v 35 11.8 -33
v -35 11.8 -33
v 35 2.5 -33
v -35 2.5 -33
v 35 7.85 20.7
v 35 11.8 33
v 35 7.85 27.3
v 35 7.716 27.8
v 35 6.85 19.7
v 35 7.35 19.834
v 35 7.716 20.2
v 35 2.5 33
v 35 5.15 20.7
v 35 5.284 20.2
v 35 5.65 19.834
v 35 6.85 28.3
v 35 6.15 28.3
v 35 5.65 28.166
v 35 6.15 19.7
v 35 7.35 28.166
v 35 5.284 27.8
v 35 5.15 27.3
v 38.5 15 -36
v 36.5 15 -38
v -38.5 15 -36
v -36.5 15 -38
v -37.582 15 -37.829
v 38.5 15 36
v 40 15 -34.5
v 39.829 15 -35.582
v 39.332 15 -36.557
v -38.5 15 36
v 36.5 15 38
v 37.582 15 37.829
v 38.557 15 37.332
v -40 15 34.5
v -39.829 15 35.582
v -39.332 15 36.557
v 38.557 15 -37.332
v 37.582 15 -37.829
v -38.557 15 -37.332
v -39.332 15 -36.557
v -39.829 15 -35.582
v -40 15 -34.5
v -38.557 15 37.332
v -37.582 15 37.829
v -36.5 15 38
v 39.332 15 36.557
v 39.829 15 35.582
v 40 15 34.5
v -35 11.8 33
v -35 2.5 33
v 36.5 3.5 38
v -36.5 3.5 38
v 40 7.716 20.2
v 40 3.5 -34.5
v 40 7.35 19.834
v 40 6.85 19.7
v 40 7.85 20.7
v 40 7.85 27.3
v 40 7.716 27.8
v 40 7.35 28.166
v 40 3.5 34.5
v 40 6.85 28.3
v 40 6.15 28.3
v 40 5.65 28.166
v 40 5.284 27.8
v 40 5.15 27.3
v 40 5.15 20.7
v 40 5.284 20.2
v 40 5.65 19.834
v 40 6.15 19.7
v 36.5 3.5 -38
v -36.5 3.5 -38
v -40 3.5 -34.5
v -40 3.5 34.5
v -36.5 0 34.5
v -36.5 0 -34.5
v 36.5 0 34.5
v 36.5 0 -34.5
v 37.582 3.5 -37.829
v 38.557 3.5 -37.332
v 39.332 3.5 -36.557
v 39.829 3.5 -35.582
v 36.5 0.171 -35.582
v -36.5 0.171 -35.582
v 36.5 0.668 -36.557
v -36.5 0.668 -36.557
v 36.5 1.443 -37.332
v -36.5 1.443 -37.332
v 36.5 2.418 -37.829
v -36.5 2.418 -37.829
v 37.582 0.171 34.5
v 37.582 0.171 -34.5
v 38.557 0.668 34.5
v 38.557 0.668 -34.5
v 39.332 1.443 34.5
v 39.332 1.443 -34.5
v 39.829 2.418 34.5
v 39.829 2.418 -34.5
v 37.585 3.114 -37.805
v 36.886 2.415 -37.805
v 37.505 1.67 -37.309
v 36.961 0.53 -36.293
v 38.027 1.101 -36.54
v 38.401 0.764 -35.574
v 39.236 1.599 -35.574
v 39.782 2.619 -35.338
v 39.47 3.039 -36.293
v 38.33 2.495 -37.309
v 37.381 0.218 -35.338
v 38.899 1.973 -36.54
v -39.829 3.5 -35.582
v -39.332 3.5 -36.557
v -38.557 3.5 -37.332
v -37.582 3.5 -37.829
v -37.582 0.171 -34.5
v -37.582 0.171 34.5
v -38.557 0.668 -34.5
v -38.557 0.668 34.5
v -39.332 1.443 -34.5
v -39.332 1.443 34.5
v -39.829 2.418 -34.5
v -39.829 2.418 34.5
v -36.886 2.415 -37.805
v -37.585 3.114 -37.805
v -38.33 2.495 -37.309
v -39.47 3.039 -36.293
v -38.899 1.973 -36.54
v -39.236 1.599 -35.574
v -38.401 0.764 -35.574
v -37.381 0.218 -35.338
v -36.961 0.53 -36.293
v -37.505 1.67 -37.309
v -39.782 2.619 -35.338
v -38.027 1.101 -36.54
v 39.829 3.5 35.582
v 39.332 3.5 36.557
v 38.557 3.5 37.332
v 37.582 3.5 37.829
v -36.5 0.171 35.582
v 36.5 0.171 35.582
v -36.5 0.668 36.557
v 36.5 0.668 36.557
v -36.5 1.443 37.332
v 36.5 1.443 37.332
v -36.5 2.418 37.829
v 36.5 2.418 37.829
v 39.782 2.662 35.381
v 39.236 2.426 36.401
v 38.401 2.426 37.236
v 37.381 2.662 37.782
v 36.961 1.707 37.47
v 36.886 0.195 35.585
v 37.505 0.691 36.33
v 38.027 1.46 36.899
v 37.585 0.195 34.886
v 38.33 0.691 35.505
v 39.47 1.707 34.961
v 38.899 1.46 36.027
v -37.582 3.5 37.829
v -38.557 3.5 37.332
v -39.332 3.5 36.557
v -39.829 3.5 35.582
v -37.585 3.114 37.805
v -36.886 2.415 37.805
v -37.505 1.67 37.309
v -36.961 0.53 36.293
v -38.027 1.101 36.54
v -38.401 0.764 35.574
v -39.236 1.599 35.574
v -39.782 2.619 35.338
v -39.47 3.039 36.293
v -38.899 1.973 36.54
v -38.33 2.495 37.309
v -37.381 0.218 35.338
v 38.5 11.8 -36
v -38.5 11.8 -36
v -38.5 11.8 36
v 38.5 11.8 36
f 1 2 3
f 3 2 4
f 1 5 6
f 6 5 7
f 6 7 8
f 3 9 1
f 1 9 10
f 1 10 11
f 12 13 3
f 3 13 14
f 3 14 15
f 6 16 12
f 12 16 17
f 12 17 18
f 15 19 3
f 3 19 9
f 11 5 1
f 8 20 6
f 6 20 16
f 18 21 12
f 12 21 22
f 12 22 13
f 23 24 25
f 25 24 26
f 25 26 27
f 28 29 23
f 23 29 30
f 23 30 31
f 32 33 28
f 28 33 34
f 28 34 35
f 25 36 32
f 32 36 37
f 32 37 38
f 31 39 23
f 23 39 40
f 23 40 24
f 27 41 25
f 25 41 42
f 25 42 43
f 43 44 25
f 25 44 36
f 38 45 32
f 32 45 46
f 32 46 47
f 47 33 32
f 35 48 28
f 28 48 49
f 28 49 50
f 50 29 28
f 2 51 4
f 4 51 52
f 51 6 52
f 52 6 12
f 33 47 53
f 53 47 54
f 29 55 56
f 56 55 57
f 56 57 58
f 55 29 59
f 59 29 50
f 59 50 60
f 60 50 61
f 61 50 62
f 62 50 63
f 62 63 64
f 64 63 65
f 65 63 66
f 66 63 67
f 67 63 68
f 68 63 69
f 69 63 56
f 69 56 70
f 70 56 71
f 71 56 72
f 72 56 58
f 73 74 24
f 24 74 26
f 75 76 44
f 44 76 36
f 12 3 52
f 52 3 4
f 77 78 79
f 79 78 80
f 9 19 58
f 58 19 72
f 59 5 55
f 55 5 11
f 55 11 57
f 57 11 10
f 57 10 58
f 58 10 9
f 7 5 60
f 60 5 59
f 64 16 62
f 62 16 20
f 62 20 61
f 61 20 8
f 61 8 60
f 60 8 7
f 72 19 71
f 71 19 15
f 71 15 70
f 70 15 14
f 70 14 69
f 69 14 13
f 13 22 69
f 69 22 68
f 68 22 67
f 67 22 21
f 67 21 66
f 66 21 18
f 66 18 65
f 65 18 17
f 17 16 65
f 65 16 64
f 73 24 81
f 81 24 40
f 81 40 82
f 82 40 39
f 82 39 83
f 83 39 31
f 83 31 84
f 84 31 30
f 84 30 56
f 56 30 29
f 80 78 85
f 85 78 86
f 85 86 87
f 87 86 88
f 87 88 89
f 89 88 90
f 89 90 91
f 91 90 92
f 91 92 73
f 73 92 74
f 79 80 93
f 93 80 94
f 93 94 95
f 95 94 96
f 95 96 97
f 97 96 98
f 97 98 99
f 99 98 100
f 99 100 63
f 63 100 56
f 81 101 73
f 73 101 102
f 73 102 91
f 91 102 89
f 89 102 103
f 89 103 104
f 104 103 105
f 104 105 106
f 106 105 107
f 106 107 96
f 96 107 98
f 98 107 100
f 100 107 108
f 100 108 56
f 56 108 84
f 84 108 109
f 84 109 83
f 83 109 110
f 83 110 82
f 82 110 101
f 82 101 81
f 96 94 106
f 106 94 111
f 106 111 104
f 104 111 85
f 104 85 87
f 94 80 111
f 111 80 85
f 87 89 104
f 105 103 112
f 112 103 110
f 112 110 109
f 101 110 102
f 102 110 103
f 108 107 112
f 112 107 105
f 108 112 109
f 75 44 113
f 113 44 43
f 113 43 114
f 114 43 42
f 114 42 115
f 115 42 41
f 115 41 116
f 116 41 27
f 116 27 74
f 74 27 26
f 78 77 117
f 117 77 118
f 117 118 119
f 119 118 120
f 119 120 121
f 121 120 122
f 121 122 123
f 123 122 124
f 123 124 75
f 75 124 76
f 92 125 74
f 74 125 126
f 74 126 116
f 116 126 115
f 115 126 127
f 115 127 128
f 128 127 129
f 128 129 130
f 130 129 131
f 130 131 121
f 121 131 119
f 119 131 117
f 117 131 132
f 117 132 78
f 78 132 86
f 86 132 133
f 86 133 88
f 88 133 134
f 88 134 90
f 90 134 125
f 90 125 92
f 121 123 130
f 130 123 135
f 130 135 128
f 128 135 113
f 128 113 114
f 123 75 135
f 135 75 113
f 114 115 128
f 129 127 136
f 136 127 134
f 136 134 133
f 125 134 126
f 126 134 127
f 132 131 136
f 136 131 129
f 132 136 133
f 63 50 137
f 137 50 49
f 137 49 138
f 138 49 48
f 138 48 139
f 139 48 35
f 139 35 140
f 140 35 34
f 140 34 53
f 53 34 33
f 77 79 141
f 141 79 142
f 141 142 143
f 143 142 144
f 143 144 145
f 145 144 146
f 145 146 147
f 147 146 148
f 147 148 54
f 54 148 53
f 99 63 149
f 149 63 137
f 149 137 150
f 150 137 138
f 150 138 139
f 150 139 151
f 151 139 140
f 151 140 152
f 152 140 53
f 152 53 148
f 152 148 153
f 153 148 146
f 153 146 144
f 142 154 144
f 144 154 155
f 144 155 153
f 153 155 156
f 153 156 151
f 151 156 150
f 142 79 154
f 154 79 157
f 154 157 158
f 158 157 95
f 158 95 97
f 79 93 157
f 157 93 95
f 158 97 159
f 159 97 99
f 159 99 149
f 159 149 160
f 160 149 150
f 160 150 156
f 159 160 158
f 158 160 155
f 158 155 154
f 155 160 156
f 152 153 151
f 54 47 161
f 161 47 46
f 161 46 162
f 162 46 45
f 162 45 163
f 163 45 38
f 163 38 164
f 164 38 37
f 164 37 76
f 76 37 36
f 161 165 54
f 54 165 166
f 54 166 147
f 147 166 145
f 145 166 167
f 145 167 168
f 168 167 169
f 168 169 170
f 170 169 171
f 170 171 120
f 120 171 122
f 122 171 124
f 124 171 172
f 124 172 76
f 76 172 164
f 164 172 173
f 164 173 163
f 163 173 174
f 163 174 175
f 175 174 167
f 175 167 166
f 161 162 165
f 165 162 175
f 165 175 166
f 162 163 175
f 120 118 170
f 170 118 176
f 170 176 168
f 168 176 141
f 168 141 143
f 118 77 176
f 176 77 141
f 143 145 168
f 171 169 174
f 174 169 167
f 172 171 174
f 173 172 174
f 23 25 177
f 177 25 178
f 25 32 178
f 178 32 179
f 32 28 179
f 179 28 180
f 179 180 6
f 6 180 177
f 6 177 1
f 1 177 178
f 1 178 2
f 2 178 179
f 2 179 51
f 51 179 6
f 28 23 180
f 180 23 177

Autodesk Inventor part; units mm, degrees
ref_plane "YZ Plane" through (0, 0, 0) normal (1, 0, 0) x (0, 1, 0)
ref_plane "XZ Plane" through (0, 0, 0) normal (0, 1, 0) x (-1, 0, 0)
ref_plane "XY Plane" through (0, 0, 0) normal (0, 0, 1) x (1, 0, 0)
sketch "Sketch2" plane through (0, 0, 0) normal (0, 1, 0) x (-1, 0, 0)
  line L0 (-40, -38) -> (40, -38)
  line L1 (40, -38) -> (40, 38)
  line L2 (40, 38) -> (-40, 38)
  line L3 (-40, 38) -> (-40, -38)
  line L4 (-40, -38) -> (40, 38) construction
  line L5 (40, -38) -> (-40, 38) construction
  point P0 (0, 0)
  dimension "d0" = 80
  dimension "d1" = 76
extrude "Extrusion1" add sketch "Sketch2" along normal blind 2.5
sketch "Sketch3" plane through (0, 2.5, 0) normal (0, 1, 0) x (1, 0, 0)
  line L0 (-35, -33) -> (35, -33)
  line L1 (35, -33) -> (35, 33)
  line L2 (35, 33) -> (-35, 33)
  line L3 (-35, 33) -> (-35, -33)
  line L4 (-35, -33) -> (35, 33) construction
  line L5 (35, -33) -> (-35, 33) construction
  line L6 (-40, 38) -> (-40, -38) projected
  line L7 (-40, 38) -> (-40, -38) projected
  line L8 (-40, -38) -> (40, -38) projected
  line L9 (-40, -38) -> (40, -38) projected
  line L10 (40, -38) -> (40, 38) projected
  line L11 (40, -38) -> (40, 38) projected
  line L12 (40, 38) -> (-40, 38) projected
  line L13 (40, 38) -> (-40, 38) projected
  point P0 (0, 0)
  dimension "d4" = 70
  dimension "d5" = 66
extrude "Extrusion2" add sketch "Sketch3" along normal blind 12.5
sketch "Sketch4" plane through (40, 0, 38) normal (1, 0, 0) x (0, 0, -1)
  line L0 (76, 0) -> (0, 0) projected
  line L1 (0, 0) -> (0, 15) projected
  line L2 (76, 0) -> (76, 15) projected
  line L3 (71, 2.5) -> (71, 15) projected
  line L4 (76, 15) -> (0, 15) projected
  line L5 (71, 2.5) -> (5, 2.5) projected
  line L6 (5, 2.5) -> (5, 15) projected
  line L7 (5, 15) -> (71, 15) projected
  line L8 (71, 15) -> (5, 15) projected
  line L9 (5, 2.5) -> (71, 2.5) projected
  line L10 (5, 2.5) -> (5, 15) projected
  line L11 (0, 0) -> (0, 15) projected
  line L12 (0, 0) -> (76, 0) projected
  line L13 (0, 15) -> (76, 15) projected
  line L14 (71, 2.5) -> (71, 15) projected
  line L15 (76, 0) -> (76, 15) projected
  line L16 (10.7, 5.15) -> (17.3, 5.15)
  line L17 (18.3, 6.15) -> (18.3, 6.85)
  line L18 (17.3, 7.85) -> (10.7, 7.85)
  line L19 (9.7, 6.85) -> (9.7, 6.15)
  line L20 (9.7, 5.15) -> (18.3, 7.85) construction
  line L21 (18.3, 5.15) -> (9.7, 7.85) construction
  arc A0 (18.3, 6.85) -> (17.3, 7.85) centre (17.3, 6.85) ccw
  arc A1 (17.3, 5.15) -> (18.3, 6.15) centre (17.3, 6.15) ccw
  arc A2 (10.7, 7.85) -> (9.7, 6.85) centre (10.7, 6.85) ccw
  arc A3 (9.7, 6.15) -> (10.7, 5.15) centre (10.7, 6.15) ccw
  point P0 (38, 0)
  point P1 (14, 6.5)
  dimension "d8" = 8.6
  dimension "d9" = 2.7
  dimension "d10" = 1
  dimension "d11" = 1
  dimension "d12" = 4
  dimension "d13" = 9
extrude "Extrusion3" cut sketch "Sketch4" against normal blind 12.5 contours A3 L19 A2 L18 A0 L17 A1 L16
fillet "Fillet1" radius 3.5 8 edges at (40, 7.5, -38) (40, 7.5, 38) (-40, 7.5, 38) (-40, 7.5, -38) (-40, 0, 0) (0, 0, -38) (40, 0, 0) (0, 0, 38)
sketch "Sketch5" plane through (0, 15, 0) normal (0, 1, 0) x (1, 0, 0)
  line L0 (36.5, 38) -> (-36.5, 38) projected
  line L1 (-36.5, -38) -> (36.5, -38) projected
  line L2 (40, -34.5) -> (40, 34.5) projected
  line L3 (-40, 34.5) -> (-40, -34.5) projected
  line L4 (35, -33) -> (-35, -33) projected
  line L5 (-35, -33) -> (-35, 33) projected
  line L6 (-35, 33) -> (35, 33) projected
  line L7 (35, 33) -> (35, -33) projected
  line L8 (-38.5, -36) -> (38.5, -36)
  line L9 (38.5, -36) -> (38.5, 36)
  line L10 (38.5, 36) -> (-38.5, 36)
  line L11 (-38.5, 36) -> (-38.5, -36)
  line L12 (-38.5, -36) -> (38.5, 36) construction
  line L13 (38.5, -36) -> (-38.5, 36) construction
  point P0 (0, 0)
  dimension "d17" = 76
  dimension "d18" = 80
  dimension "d19" = 77
  dimension "d20" = 72
extrude "Extrusion4" cut sketch "Sketch5" against normal blind 3.2
properties part number "backdoor"
